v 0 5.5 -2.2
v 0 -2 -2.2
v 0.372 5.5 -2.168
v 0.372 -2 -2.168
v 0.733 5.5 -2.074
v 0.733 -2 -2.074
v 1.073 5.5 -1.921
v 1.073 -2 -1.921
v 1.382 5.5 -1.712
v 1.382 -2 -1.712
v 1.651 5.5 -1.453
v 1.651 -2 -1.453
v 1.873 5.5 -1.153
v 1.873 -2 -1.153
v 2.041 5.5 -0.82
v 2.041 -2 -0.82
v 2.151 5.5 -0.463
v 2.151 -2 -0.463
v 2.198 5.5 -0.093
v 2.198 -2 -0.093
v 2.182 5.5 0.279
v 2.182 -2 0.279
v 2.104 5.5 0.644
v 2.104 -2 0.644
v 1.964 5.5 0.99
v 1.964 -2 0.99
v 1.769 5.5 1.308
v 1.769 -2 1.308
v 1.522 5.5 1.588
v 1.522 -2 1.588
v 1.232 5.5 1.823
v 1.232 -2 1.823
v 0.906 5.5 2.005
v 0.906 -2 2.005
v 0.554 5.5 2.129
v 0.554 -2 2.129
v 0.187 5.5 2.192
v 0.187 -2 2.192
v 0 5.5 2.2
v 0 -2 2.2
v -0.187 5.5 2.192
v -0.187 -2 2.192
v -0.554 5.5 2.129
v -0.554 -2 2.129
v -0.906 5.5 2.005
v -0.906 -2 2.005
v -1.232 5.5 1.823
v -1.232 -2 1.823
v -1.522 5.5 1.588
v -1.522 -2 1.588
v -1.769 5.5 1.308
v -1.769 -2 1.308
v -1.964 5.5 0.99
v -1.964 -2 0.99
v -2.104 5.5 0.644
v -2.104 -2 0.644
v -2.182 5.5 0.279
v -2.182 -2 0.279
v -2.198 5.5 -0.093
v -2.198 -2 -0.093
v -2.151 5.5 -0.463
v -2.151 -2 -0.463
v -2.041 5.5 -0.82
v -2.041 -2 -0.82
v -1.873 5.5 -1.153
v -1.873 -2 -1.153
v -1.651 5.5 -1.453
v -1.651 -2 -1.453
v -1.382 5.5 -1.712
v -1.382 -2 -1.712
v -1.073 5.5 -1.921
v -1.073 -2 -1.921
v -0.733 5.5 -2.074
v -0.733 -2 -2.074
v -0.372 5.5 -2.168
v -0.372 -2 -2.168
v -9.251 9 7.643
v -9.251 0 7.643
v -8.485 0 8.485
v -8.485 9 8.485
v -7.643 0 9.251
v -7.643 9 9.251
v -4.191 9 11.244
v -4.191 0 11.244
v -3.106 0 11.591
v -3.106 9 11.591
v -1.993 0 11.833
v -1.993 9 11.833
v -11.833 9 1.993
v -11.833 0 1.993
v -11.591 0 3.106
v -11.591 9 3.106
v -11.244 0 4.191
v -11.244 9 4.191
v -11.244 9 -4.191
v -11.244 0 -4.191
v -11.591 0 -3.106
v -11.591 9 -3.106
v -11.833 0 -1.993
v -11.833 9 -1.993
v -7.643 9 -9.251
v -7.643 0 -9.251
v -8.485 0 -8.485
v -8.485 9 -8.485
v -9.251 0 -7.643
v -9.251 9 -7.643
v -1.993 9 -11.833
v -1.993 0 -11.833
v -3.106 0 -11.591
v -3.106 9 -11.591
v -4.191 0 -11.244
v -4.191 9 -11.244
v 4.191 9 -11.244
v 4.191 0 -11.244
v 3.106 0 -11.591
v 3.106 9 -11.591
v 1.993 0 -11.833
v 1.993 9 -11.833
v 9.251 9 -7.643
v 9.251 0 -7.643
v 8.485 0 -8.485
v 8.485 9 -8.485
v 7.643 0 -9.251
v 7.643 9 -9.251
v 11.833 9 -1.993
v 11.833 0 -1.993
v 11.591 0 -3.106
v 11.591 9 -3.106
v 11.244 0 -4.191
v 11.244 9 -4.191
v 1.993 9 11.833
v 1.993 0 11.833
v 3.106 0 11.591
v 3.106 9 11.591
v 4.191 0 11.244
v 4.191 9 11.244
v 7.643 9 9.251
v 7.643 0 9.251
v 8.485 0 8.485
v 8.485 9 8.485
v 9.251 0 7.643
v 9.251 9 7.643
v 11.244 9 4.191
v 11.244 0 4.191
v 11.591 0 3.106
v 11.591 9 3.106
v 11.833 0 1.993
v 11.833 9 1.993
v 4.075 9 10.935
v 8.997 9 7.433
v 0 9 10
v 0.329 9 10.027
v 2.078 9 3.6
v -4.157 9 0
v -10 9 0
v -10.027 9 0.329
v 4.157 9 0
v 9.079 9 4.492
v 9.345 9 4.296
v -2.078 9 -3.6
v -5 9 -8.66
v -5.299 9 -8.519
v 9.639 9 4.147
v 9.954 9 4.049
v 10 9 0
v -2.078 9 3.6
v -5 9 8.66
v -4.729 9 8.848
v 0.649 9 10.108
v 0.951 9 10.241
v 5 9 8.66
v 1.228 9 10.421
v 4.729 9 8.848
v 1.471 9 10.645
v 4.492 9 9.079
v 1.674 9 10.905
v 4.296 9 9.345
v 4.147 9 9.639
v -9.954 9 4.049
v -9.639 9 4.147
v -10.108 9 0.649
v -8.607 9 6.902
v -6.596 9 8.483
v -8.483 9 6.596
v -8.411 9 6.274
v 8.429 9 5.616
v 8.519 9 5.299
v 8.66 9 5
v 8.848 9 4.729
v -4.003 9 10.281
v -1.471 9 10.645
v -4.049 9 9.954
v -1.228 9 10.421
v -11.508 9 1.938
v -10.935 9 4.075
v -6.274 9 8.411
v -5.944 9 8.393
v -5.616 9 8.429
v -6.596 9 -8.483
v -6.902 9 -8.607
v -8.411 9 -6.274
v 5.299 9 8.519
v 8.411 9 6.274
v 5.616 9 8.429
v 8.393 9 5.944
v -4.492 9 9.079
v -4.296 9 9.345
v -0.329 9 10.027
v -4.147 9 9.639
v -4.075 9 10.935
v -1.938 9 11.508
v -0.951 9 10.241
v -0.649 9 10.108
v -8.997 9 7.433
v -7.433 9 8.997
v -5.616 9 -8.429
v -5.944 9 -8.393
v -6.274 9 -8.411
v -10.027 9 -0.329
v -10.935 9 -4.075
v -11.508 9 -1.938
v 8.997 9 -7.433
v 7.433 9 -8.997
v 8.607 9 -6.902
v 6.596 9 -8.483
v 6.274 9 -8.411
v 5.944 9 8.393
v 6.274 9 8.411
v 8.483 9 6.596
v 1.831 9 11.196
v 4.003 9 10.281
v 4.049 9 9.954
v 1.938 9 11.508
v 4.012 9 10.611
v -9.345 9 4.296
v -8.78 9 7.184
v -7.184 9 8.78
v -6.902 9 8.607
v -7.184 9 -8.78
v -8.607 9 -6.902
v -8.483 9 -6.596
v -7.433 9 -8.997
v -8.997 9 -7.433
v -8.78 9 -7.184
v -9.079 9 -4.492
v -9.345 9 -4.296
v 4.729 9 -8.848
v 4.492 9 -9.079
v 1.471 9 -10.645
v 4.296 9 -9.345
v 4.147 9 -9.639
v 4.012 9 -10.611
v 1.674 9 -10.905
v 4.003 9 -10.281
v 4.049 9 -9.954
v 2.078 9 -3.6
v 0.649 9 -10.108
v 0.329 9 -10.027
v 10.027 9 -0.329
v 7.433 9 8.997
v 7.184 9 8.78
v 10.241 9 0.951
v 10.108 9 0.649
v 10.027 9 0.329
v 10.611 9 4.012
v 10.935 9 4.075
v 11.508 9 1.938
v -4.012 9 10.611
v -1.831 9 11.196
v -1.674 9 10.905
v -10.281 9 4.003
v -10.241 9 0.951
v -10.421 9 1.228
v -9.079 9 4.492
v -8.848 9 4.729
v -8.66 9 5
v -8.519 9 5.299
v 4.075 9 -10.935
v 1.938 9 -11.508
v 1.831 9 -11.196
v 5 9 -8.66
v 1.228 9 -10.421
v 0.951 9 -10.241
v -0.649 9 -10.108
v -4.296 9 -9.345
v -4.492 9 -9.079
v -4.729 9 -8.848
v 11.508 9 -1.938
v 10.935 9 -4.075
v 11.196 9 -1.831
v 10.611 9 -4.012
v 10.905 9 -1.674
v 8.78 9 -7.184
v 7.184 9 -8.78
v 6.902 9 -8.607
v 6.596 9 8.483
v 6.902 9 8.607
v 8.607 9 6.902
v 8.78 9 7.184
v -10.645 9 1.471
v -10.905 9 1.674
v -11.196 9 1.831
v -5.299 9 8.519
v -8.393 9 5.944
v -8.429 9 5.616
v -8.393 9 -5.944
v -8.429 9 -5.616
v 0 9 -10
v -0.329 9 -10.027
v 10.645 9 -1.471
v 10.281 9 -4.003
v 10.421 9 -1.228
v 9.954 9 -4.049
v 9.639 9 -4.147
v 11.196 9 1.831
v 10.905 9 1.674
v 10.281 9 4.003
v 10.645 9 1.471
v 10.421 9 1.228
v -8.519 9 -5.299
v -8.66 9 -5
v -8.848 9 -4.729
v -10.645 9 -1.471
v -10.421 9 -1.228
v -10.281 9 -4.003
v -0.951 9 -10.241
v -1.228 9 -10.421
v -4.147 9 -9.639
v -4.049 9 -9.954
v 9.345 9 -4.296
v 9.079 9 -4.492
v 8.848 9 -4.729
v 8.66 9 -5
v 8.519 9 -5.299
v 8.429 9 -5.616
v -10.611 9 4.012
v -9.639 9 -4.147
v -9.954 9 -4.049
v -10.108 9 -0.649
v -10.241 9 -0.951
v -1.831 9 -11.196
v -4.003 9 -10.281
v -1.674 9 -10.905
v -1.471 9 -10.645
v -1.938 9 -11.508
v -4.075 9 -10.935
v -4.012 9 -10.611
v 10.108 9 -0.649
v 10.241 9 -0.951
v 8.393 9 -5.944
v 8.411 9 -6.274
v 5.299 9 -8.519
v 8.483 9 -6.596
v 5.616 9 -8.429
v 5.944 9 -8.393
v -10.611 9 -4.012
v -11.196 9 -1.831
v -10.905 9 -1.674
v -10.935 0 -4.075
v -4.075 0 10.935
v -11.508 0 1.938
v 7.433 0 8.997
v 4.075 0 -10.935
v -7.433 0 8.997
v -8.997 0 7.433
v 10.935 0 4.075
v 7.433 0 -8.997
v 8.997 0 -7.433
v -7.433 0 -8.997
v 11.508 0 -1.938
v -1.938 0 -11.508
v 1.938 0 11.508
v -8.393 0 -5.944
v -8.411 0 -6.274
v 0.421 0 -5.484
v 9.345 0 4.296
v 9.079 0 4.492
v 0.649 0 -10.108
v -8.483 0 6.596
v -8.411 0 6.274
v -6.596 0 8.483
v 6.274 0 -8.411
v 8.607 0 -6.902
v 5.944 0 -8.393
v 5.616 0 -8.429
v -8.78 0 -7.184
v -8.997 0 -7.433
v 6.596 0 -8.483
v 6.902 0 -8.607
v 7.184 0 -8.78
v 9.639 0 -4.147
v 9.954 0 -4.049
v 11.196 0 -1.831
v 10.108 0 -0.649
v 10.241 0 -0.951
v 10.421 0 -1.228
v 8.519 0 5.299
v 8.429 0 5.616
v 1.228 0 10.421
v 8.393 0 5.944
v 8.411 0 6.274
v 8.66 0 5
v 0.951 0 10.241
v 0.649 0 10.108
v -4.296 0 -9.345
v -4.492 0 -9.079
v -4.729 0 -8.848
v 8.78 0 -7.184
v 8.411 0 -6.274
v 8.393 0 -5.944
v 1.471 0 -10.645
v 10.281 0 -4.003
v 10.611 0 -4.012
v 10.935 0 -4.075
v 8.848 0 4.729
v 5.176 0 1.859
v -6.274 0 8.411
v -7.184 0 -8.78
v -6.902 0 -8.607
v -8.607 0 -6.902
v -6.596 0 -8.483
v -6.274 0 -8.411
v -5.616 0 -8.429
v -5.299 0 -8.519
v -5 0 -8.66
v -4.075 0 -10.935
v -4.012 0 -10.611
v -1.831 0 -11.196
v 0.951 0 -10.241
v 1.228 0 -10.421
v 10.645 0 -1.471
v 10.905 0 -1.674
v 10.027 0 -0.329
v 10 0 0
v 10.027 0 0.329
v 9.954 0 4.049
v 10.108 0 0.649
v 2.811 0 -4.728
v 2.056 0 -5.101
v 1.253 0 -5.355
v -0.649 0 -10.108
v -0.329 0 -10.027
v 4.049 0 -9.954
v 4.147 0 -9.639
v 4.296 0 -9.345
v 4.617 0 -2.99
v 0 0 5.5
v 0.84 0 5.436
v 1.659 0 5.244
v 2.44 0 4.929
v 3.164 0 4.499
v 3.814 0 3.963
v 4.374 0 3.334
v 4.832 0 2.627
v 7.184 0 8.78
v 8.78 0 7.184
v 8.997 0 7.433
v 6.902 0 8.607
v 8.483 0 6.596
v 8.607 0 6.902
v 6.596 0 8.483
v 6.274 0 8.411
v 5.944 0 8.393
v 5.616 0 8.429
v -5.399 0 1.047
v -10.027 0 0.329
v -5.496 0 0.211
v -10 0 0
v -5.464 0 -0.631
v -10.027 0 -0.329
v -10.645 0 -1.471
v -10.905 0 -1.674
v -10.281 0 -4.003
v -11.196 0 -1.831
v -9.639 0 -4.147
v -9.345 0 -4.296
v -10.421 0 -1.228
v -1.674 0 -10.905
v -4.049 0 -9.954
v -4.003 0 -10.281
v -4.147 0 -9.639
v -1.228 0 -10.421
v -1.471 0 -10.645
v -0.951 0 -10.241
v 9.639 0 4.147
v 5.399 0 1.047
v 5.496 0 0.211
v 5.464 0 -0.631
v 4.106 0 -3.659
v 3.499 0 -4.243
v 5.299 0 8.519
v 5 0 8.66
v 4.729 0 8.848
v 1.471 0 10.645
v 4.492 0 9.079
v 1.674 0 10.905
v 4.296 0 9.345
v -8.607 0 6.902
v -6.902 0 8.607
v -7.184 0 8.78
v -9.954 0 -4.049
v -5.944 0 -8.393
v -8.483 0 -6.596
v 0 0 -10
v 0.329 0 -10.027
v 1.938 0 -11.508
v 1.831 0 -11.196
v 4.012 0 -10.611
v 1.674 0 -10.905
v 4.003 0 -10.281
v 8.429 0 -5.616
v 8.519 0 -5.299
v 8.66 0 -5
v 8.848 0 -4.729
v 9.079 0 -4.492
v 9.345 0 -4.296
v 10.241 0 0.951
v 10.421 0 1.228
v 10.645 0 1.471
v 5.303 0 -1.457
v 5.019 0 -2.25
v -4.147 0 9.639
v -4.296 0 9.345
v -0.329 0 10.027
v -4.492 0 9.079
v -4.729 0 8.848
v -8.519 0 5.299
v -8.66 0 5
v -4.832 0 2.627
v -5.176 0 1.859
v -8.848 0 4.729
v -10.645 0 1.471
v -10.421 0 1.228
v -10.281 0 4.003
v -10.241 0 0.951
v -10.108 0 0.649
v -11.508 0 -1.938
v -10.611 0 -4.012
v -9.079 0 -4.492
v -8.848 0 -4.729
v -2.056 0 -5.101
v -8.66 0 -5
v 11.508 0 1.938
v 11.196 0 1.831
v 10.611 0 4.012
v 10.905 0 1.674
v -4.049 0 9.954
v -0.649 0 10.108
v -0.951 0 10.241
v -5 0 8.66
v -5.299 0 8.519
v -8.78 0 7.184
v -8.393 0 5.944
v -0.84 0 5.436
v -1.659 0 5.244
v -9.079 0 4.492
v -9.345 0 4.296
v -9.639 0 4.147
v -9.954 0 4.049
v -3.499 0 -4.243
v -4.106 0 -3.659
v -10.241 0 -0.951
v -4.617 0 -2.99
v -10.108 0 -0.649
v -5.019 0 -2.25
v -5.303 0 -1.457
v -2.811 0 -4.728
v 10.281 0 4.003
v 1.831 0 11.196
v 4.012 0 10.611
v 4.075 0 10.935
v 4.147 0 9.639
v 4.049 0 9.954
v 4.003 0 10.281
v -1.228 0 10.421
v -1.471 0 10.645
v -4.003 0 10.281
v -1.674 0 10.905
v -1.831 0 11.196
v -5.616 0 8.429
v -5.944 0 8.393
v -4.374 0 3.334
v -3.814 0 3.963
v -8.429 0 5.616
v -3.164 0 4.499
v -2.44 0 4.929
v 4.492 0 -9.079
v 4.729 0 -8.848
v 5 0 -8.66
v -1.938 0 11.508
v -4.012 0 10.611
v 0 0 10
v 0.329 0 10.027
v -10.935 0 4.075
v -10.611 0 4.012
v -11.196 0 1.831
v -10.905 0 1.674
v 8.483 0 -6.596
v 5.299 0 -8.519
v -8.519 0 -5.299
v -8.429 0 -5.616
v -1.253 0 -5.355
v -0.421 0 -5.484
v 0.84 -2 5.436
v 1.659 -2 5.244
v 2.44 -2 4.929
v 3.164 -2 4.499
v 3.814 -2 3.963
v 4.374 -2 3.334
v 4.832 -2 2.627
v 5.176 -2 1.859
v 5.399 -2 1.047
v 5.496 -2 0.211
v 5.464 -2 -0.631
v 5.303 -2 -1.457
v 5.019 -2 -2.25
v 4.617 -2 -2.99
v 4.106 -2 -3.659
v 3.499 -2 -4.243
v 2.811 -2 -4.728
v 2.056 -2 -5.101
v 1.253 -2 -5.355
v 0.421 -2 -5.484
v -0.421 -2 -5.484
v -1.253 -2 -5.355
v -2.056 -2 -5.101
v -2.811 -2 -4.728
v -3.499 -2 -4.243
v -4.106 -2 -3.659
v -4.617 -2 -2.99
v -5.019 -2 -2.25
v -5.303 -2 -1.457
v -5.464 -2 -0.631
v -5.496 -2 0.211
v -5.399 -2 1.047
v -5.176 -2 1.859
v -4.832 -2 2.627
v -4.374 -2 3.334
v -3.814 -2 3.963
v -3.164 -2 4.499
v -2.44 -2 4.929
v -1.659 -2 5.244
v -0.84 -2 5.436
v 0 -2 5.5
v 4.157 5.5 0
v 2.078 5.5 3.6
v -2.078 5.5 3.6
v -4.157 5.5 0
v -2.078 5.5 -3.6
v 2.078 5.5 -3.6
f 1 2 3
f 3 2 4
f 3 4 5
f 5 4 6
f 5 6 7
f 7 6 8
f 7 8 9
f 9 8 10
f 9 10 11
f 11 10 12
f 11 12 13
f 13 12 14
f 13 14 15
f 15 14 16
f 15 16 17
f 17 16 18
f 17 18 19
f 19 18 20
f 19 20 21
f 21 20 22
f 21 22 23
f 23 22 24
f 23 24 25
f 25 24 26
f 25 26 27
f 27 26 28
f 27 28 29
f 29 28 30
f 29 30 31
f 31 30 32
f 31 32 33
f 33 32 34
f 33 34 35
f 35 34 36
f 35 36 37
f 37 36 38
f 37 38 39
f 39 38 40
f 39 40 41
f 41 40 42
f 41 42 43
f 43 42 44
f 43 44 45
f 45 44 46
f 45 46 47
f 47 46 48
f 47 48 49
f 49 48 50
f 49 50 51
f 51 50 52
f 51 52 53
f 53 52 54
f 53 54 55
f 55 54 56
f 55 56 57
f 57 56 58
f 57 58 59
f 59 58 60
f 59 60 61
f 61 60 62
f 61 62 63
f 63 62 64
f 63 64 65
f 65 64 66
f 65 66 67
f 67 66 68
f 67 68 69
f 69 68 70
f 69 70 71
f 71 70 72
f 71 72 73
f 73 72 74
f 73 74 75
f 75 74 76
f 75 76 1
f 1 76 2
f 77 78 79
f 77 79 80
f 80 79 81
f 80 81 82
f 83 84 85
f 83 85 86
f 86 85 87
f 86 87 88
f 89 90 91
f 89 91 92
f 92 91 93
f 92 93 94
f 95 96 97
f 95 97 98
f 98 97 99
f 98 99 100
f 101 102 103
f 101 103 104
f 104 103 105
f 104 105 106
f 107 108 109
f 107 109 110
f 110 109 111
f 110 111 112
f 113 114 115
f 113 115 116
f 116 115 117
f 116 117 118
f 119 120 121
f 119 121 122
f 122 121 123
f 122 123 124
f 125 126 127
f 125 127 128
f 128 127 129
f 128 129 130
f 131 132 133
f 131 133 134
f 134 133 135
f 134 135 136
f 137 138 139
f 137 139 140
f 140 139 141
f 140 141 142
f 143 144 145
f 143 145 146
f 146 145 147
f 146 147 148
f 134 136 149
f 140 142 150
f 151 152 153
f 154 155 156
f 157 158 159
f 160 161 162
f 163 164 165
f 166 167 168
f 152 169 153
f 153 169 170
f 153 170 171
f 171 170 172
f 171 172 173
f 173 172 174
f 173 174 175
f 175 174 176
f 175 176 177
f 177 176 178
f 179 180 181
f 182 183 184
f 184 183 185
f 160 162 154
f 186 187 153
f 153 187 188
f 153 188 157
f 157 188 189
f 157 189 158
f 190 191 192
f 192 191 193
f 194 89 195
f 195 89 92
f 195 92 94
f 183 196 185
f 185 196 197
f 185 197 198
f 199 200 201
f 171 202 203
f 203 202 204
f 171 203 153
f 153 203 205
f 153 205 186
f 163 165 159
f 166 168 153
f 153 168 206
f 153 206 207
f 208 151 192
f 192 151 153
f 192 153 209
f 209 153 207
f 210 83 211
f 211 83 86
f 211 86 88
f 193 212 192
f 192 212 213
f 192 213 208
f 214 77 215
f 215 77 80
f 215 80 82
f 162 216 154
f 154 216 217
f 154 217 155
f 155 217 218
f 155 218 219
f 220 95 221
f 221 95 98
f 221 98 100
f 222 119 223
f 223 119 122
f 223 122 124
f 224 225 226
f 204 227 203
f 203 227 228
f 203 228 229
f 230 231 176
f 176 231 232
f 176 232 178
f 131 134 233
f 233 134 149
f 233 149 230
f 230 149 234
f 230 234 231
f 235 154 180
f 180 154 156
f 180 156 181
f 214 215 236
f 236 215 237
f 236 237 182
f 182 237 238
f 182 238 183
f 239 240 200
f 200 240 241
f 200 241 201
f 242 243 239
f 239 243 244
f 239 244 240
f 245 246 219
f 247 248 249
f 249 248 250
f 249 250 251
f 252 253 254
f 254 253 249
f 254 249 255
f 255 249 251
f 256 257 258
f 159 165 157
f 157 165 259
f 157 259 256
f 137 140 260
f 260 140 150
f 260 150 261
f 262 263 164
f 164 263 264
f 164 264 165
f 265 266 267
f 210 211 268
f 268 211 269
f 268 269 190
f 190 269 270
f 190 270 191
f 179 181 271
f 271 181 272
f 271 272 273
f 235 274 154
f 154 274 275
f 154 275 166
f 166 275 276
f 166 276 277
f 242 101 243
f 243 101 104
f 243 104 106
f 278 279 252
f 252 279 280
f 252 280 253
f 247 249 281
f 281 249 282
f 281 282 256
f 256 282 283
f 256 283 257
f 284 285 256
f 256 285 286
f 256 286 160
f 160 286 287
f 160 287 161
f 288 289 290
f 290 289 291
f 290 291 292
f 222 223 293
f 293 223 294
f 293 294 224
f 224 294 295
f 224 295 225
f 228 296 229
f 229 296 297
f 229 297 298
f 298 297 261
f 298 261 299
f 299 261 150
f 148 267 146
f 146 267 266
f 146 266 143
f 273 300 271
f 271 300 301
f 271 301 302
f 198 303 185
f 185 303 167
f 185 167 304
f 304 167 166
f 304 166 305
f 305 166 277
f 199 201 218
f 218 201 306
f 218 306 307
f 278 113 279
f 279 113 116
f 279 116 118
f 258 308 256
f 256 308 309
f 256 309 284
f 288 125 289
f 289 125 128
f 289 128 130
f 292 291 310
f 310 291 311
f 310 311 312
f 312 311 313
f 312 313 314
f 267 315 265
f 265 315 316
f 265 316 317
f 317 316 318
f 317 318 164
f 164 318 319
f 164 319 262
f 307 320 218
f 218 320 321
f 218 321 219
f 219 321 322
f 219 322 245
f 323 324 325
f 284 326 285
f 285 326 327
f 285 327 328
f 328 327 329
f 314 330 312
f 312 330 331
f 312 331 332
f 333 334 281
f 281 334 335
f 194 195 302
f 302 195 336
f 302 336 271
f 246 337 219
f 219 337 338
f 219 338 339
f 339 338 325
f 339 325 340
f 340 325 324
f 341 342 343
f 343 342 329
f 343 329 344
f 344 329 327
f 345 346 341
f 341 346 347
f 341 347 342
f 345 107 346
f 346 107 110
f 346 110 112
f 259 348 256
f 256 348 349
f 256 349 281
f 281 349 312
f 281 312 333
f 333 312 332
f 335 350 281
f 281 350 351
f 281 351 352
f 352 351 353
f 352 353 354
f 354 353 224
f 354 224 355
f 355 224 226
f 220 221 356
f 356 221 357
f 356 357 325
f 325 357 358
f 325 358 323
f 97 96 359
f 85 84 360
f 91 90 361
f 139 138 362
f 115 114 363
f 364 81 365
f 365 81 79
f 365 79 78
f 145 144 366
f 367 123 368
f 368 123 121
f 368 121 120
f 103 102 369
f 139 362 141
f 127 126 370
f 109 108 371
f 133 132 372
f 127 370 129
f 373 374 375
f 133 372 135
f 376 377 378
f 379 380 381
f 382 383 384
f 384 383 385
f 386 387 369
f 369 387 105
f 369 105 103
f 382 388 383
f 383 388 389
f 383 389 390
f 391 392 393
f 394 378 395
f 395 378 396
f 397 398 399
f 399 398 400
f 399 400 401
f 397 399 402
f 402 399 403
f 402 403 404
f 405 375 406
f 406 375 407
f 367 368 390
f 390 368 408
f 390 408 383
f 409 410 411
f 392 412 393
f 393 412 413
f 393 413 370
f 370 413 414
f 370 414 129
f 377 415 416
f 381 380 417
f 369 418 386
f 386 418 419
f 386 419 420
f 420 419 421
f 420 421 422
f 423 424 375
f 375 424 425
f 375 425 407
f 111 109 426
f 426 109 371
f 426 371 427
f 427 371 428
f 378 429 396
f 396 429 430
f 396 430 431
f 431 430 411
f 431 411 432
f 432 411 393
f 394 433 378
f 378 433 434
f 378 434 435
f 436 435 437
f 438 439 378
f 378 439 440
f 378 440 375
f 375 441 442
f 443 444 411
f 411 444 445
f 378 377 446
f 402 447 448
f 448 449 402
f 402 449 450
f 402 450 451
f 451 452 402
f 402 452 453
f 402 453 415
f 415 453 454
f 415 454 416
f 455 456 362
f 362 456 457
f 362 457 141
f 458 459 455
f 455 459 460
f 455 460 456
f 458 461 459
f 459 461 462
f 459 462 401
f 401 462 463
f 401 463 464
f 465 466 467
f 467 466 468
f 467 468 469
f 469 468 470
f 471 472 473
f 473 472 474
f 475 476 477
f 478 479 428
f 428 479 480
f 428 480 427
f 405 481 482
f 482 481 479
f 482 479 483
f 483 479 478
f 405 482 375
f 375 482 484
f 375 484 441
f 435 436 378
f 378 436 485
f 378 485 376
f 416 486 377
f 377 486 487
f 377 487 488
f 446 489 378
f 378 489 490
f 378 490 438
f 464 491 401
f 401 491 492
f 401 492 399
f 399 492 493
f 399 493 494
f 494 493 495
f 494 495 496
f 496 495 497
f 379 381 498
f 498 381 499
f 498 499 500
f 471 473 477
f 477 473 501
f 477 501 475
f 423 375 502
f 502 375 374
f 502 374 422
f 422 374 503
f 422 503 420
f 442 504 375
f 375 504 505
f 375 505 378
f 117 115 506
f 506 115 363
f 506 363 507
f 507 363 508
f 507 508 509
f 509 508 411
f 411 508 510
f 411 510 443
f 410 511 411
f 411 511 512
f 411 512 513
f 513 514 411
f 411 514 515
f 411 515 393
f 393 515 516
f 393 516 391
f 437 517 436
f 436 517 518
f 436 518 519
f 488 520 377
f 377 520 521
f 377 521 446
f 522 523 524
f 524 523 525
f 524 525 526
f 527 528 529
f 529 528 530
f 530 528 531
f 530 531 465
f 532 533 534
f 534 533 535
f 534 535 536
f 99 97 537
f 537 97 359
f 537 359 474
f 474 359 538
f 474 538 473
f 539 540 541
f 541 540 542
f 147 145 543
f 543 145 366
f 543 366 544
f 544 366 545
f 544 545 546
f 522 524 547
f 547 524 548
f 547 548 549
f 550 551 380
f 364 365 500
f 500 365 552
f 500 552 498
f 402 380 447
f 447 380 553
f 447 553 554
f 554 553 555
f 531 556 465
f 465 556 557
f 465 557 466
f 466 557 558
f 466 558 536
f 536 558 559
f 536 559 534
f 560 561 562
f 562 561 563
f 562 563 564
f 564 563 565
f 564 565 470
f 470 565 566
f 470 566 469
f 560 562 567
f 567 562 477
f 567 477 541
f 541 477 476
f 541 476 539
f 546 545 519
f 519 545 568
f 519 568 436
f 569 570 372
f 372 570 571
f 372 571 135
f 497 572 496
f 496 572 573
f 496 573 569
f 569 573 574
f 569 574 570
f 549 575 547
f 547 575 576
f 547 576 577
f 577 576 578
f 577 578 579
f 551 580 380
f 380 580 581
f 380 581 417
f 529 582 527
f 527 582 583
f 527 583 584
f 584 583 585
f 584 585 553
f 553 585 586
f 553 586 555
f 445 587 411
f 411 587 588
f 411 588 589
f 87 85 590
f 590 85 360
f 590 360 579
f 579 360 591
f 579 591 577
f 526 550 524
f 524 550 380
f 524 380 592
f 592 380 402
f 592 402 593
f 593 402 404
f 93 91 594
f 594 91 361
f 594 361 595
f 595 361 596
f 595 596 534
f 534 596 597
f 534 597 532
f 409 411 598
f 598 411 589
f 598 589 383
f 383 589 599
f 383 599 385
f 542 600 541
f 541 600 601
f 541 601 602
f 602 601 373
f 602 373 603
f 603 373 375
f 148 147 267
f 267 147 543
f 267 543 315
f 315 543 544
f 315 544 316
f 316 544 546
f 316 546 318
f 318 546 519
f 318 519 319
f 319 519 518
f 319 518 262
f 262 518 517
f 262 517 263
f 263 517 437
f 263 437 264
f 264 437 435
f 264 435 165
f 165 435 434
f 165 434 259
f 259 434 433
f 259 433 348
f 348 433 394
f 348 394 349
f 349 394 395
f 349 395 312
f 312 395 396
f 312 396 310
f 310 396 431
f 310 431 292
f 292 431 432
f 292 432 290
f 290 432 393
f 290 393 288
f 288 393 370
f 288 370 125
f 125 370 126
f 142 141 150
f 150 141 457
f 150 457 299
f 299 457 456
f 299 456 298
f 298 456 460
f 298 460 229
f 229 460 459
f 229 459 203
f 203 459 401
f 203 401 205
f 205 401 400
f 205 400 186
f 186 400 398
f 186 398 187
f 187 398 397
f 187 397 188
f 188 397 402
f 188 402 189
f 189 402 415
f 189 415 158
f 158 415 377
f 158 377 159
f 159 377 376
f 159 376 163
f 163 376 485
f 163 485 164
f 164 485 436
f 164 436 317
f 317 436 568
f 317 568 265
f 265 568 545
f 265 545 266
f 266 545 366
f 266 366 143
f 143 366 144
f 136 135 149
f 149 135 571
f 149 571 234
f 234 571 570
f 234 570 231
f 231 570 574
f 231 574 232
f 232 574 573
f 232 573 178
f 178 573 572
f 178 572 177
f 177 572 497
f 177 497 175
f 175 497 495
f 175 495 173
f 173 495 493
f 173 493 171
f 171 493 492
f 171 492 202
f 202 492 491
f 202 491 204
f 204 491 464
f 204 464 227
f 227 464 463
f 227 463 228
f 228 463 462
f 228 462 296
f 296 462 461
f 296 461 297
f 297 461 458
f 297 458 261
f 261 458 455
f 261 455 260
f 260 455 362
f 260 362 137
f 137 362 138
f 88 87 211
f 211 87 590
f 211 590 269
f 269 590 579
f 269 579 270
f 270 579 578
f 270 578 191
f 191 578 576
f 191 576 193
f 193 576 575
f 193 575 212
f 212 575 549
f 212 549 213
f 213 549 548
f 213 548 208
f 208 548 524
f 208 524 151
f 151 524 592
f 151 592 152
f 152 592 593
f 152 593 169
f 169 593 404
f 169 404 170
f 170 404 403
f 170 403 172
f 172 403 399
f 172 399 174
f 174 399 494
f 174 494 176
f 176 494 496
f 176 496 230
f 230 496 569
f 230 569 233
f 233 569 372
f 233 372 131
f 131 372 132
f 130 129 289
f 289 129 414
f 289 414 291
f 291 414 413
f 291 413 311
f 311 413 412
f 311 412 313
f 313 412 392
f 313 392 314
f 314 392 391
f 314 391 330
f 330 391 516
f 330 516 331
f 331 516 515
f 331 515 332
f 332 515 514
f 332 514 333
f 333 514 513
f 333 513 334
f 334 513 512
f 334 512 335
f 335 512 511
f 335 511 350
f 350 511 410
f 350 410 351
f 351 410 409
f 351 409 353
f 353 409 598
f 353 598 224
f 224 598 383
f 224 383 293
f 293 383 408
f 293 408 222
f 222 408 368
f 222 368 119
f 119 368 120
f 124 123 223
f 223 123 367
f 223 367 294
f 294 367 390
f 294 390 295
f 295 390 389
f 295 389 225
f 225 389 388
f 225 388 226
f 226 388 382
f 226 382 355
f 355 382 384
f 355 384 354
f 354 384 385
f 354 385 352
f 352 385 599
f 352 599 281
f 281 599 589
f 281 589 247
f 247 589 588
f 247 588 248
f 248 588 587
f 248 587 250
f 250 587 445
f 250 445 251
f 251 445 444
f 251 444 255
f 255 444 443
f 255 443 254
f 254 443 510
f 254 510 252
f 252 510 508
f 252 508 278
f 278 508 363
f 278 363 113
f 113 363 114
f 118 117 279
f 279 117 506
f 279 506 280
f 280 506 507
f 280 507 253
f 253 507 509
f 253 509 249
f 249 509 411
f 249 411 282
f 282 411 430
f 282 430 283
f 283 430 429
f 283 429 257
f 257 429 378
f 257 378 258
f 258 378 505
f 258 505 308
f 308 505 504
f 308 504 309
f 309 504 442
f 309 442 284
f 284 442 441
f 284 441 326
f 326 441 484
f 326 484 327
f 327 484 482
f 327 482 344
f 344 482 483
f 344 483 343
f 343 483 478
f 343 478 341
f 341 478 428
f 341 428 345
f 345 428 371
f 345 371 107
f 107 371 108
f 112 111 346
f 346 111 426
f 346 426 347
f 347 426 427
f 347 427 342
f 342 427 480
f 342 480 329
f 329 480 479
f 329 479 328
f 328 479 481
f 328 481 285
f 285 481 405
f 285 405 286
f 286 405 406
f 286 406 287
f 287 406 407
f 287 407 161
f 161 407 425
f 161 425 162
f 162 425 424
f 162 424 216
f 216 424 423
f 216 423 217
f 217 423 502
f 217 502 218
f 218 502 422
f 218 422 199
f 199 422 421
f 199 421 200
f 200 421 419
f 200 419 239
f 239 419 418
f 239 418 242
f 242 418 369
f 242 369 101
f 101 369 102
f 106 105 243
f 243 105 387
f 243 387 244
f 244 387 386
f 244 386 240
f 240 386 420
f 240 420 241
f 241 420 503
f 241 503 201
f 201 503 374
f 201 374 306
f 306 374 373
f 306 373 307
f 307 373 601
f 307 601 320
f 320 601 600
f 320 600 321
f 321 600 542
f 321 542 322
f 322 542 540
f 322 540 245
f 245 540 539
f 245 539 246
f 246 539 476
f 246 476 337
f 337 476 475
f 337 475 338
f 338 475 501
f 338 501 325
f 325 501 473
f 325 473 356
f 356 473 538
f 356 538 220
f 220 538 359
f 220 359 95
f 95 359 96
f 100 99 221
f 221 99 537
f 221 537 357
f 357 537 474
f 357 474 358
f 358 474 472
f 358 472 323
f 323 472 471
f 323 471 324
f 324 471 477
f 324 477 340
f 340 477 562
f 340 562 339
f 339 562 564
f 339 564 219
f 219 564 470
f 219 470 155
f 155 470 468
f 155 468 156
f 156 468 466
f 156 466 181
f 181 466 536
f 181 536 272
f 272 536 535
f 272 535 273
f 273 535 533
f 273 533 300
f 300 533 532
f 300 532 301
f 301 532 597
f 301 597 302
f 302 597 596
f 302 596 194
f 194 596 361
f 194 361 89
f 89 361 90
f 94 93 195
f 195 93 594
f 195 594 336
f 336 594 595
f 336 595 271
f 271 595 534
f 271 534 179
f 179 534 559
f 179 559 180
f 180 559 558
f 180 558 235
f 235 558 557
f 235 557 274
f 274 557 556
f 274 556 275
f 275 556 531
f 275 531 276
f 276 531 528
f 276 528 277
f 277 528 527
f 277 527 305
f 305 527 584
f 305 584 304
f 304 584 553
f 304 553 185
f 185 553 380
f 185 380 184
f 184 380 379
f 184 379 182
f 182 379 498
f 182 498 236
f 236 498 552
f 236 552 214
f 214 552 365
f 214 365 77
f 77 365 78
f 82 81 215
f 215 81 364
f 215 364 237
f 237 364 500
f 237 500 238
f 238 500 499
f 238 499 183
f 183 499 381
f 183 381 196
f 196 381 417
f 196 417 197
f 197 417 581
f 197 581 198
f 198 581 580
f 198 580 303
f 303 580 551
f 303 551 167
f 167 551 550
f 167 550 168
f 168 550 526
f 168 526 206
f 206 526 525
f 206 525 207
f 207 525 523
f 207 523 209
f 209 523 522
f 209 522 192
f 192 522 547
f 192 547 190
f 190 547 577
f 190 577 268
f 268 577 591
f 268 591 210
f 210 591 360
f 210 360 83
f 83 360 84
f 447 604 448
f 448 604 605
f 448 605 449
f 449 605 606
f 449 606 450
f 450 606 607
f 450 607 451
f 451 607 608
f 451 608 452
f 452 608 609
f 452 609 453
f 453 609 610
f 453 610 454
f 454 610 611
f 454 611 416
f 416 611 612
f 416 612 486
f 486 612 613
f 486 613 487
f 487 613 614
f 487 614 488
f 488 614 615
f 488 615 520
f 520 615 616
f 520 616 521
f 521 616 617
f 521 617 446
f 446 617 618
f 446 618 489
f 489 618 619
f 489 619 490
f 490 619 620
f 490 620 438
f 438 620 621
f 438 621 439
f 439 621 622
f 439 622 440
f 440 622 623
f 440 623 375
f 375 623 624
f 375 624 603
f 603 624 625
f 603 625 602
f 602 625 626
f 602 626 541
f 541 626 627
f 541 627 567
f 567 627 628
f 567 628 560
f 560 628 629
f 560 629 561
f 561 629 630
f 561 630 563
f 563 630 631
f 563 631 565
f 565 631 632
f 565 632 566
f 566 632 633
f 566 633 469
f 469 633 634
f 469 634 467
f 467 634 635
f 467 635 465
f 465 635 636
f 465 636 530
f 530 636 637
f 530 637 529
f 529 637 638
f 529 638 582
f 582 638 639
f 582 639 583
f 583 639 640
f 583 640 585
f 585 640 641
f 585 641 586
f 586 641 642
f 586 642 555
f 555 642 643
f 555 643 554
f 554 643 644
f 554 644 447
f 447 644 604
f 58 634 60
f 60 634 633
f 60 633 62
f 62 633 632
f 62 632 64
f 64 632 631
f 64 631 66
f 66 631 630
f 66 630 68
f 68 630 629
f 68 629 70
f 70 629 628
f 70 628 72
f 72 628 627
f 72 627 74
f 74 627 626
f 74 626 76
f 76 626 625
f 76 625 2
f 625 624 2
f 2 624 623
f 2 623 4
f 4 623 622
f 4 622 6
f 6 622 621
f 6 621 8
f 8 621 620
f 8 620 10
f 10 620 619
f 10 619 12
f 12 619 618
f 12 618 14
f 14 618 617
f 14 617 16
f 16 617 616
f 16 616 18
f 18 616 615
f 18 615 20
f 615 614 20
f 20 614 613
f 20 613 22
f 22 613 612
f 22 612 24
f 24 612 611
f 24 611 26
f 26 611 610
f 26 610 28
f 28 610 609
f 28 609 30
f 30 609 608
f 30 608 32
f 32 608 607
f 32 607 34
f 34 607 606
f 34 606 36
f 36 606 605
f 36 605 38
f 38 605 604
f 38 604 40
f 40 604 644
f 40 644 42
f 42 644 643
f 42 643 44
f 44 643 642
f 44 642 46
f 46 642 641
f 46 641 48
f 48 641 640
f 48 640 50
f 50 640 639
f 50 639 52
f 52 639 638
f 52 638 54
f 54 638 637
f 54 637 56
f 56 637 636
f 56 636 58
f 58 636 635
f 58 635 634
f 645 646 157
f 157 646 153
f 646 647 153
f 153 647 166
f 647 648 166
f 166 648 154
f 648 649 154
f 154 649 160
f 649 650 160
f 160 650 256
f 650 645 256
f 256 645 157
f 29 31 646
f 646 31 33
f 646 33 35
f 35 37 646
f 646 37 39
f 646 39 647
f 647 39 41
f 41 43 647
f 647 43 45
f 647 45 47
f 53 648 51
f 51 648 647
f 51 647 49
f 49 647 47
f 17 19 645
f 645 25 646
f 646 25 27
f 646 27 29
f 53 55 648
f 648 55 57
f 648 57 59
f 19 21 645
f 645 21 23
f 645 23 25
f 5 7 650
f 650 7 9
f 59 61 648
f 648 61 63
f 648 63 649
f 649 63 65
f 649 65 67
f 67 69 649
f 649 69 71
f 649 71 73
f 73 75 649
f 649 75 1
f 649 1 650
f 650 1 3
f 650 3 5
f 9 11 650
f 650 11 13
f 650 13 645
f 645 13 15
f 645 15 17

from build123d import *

# Parameters (mm, degrees)
CROQUIS_PERILLA_R    = 12
CUERPO_DEPTH         = 9
MOLETEADO_DEPTH      = 20.209372712
MOLETEADO_DEPTH_BACK = 20.209372712
CROQUIS_MOLETEADO_R  = 2
CROQUIS_ARANDELA_R   = 5.5
ARANDELA_DEPTH       = 2
PASO_M4_DEPTH        = 20.001461932
PASO_M4_DEPTH_BACK   = 20.001461932
CROQUIS_PASO_R       = 2.2
CABEZA_M4_DEPTH      = 3.5


with BuildPart() as part:
    # Croquis_perilla → Cuerpo (new body)
    with BuildSketch(Plane(origin=(0, 0, 0), x_dir=(1, 0, 0), z_dir=(0, 1, 0))):
        with Locations(Location((0, 0, 0), (0, 0, 270))):
            Circle(CROQUIS_PERILLA_R)
    extrude(amount=CUERPO_DEPTH)

    # Croquis_moleteado → Moleteado (cut, two sides: drawn at the far end of the back side and taken through both)
    with BuildSketch(Plane(origin=(0, 0, 0), x_dir=(1, 0, 0), z_dir=(0, 1, 0)).offset(-MOLETEADO_DEPTH_BACK)):
        with Locations((12, 0)):
            Circle(CROQUIS_MOLETEADO_R)
        with Locations((10.392304845, 6)):
            Circle(CROQUIS_MOLETEADO_R)
        with Locations((6, 10.392304845)):
            Circle(CROQUIS_MOLETEADO_R)
        with Locations((0, 12)):
            Circle(CROQUIS_MOLETEADO_R)
        with Locations((-6, 10.392304845)):
            Circle(CROQUIS_MOLETEADO_R)
        with Locations((-10.392304845, 6)):
            Circle(CROQUIS_MOLETEADO_R)
        with Locations((-12, 0)):
            Circle(CROQUIS_MOLETEADO_R)
        with Locations((-10.392304845, -6)):
            Circle(CROQUIS_MOLETEADO_R)
        with Locations((-6, -10.392304845)):
            Circle(CROQUIS_MOLETEADO_R)
        with Locations((0, -12)):
            Circle(CROQUIS_MOLETEADO_R)
        with Locations((6, -10.392304845)):
            Circle(CROQUIS_MOLETEADO_R)
        with Locations((10.392304845, -6)):
            Circle(CROQUIS_MOLETEADO_R)
    extrude(amount=MOLETEADO_DEPTH + MOLETEADO_DEPTH_BACK, mode=Mode.SUBTRACT)

    # Croquis_arandela → Arandela (add)
    with BuildSketch(Plane(origin=(0, 0, 0), x_dir=(1, 0, 0), z_dir=(0, 1, 0))):
        with Locations(Location((0, 0, 0), (0, 0, 270))):
            Circle(CROQUIS_ARANDELA_R)
    extrude(amount=-ARANDELA_DEPTH)

    # Croquis_paso → Paso_M4 (cut, two sides: drawn at the far end of the back side and taken through both)
    with BuildSketch(Plane(origin=(0, 0, 0), x_dir=(1, 0, 0), z_dir=(0, 1, 0)).offset(-PASO_M4_DEPTH_BACK)):
        with Locations(Location((0, 0, 0), (0, 0, 270))):
            Circle(CROQUIS_PASO_R)
    extrude(amount=PASO_M4_DEPTH + PASO_M4_DEPTH_BACK, mode=Mode.SUBTRACT)

    # Croquis_cabeza → Cabeza_M4 (cut)
    with BuildSketch(Plane(origin=(0, 9, 0), x_dir=(1, 0, 0), z_dir=(0, 1, 0))):
        Polygon((4.156921938, 0), (2.078460969, 3.6), (-2.078460969, 3.6), (-4.156921938, 0), (-2.078460969, -3.6), (2.078460969, -3.6), align=None)
    extrude(amount=-CABEZA_M4_DEPTH, mode=Mode.SUBTRACT)


solid = part.part
